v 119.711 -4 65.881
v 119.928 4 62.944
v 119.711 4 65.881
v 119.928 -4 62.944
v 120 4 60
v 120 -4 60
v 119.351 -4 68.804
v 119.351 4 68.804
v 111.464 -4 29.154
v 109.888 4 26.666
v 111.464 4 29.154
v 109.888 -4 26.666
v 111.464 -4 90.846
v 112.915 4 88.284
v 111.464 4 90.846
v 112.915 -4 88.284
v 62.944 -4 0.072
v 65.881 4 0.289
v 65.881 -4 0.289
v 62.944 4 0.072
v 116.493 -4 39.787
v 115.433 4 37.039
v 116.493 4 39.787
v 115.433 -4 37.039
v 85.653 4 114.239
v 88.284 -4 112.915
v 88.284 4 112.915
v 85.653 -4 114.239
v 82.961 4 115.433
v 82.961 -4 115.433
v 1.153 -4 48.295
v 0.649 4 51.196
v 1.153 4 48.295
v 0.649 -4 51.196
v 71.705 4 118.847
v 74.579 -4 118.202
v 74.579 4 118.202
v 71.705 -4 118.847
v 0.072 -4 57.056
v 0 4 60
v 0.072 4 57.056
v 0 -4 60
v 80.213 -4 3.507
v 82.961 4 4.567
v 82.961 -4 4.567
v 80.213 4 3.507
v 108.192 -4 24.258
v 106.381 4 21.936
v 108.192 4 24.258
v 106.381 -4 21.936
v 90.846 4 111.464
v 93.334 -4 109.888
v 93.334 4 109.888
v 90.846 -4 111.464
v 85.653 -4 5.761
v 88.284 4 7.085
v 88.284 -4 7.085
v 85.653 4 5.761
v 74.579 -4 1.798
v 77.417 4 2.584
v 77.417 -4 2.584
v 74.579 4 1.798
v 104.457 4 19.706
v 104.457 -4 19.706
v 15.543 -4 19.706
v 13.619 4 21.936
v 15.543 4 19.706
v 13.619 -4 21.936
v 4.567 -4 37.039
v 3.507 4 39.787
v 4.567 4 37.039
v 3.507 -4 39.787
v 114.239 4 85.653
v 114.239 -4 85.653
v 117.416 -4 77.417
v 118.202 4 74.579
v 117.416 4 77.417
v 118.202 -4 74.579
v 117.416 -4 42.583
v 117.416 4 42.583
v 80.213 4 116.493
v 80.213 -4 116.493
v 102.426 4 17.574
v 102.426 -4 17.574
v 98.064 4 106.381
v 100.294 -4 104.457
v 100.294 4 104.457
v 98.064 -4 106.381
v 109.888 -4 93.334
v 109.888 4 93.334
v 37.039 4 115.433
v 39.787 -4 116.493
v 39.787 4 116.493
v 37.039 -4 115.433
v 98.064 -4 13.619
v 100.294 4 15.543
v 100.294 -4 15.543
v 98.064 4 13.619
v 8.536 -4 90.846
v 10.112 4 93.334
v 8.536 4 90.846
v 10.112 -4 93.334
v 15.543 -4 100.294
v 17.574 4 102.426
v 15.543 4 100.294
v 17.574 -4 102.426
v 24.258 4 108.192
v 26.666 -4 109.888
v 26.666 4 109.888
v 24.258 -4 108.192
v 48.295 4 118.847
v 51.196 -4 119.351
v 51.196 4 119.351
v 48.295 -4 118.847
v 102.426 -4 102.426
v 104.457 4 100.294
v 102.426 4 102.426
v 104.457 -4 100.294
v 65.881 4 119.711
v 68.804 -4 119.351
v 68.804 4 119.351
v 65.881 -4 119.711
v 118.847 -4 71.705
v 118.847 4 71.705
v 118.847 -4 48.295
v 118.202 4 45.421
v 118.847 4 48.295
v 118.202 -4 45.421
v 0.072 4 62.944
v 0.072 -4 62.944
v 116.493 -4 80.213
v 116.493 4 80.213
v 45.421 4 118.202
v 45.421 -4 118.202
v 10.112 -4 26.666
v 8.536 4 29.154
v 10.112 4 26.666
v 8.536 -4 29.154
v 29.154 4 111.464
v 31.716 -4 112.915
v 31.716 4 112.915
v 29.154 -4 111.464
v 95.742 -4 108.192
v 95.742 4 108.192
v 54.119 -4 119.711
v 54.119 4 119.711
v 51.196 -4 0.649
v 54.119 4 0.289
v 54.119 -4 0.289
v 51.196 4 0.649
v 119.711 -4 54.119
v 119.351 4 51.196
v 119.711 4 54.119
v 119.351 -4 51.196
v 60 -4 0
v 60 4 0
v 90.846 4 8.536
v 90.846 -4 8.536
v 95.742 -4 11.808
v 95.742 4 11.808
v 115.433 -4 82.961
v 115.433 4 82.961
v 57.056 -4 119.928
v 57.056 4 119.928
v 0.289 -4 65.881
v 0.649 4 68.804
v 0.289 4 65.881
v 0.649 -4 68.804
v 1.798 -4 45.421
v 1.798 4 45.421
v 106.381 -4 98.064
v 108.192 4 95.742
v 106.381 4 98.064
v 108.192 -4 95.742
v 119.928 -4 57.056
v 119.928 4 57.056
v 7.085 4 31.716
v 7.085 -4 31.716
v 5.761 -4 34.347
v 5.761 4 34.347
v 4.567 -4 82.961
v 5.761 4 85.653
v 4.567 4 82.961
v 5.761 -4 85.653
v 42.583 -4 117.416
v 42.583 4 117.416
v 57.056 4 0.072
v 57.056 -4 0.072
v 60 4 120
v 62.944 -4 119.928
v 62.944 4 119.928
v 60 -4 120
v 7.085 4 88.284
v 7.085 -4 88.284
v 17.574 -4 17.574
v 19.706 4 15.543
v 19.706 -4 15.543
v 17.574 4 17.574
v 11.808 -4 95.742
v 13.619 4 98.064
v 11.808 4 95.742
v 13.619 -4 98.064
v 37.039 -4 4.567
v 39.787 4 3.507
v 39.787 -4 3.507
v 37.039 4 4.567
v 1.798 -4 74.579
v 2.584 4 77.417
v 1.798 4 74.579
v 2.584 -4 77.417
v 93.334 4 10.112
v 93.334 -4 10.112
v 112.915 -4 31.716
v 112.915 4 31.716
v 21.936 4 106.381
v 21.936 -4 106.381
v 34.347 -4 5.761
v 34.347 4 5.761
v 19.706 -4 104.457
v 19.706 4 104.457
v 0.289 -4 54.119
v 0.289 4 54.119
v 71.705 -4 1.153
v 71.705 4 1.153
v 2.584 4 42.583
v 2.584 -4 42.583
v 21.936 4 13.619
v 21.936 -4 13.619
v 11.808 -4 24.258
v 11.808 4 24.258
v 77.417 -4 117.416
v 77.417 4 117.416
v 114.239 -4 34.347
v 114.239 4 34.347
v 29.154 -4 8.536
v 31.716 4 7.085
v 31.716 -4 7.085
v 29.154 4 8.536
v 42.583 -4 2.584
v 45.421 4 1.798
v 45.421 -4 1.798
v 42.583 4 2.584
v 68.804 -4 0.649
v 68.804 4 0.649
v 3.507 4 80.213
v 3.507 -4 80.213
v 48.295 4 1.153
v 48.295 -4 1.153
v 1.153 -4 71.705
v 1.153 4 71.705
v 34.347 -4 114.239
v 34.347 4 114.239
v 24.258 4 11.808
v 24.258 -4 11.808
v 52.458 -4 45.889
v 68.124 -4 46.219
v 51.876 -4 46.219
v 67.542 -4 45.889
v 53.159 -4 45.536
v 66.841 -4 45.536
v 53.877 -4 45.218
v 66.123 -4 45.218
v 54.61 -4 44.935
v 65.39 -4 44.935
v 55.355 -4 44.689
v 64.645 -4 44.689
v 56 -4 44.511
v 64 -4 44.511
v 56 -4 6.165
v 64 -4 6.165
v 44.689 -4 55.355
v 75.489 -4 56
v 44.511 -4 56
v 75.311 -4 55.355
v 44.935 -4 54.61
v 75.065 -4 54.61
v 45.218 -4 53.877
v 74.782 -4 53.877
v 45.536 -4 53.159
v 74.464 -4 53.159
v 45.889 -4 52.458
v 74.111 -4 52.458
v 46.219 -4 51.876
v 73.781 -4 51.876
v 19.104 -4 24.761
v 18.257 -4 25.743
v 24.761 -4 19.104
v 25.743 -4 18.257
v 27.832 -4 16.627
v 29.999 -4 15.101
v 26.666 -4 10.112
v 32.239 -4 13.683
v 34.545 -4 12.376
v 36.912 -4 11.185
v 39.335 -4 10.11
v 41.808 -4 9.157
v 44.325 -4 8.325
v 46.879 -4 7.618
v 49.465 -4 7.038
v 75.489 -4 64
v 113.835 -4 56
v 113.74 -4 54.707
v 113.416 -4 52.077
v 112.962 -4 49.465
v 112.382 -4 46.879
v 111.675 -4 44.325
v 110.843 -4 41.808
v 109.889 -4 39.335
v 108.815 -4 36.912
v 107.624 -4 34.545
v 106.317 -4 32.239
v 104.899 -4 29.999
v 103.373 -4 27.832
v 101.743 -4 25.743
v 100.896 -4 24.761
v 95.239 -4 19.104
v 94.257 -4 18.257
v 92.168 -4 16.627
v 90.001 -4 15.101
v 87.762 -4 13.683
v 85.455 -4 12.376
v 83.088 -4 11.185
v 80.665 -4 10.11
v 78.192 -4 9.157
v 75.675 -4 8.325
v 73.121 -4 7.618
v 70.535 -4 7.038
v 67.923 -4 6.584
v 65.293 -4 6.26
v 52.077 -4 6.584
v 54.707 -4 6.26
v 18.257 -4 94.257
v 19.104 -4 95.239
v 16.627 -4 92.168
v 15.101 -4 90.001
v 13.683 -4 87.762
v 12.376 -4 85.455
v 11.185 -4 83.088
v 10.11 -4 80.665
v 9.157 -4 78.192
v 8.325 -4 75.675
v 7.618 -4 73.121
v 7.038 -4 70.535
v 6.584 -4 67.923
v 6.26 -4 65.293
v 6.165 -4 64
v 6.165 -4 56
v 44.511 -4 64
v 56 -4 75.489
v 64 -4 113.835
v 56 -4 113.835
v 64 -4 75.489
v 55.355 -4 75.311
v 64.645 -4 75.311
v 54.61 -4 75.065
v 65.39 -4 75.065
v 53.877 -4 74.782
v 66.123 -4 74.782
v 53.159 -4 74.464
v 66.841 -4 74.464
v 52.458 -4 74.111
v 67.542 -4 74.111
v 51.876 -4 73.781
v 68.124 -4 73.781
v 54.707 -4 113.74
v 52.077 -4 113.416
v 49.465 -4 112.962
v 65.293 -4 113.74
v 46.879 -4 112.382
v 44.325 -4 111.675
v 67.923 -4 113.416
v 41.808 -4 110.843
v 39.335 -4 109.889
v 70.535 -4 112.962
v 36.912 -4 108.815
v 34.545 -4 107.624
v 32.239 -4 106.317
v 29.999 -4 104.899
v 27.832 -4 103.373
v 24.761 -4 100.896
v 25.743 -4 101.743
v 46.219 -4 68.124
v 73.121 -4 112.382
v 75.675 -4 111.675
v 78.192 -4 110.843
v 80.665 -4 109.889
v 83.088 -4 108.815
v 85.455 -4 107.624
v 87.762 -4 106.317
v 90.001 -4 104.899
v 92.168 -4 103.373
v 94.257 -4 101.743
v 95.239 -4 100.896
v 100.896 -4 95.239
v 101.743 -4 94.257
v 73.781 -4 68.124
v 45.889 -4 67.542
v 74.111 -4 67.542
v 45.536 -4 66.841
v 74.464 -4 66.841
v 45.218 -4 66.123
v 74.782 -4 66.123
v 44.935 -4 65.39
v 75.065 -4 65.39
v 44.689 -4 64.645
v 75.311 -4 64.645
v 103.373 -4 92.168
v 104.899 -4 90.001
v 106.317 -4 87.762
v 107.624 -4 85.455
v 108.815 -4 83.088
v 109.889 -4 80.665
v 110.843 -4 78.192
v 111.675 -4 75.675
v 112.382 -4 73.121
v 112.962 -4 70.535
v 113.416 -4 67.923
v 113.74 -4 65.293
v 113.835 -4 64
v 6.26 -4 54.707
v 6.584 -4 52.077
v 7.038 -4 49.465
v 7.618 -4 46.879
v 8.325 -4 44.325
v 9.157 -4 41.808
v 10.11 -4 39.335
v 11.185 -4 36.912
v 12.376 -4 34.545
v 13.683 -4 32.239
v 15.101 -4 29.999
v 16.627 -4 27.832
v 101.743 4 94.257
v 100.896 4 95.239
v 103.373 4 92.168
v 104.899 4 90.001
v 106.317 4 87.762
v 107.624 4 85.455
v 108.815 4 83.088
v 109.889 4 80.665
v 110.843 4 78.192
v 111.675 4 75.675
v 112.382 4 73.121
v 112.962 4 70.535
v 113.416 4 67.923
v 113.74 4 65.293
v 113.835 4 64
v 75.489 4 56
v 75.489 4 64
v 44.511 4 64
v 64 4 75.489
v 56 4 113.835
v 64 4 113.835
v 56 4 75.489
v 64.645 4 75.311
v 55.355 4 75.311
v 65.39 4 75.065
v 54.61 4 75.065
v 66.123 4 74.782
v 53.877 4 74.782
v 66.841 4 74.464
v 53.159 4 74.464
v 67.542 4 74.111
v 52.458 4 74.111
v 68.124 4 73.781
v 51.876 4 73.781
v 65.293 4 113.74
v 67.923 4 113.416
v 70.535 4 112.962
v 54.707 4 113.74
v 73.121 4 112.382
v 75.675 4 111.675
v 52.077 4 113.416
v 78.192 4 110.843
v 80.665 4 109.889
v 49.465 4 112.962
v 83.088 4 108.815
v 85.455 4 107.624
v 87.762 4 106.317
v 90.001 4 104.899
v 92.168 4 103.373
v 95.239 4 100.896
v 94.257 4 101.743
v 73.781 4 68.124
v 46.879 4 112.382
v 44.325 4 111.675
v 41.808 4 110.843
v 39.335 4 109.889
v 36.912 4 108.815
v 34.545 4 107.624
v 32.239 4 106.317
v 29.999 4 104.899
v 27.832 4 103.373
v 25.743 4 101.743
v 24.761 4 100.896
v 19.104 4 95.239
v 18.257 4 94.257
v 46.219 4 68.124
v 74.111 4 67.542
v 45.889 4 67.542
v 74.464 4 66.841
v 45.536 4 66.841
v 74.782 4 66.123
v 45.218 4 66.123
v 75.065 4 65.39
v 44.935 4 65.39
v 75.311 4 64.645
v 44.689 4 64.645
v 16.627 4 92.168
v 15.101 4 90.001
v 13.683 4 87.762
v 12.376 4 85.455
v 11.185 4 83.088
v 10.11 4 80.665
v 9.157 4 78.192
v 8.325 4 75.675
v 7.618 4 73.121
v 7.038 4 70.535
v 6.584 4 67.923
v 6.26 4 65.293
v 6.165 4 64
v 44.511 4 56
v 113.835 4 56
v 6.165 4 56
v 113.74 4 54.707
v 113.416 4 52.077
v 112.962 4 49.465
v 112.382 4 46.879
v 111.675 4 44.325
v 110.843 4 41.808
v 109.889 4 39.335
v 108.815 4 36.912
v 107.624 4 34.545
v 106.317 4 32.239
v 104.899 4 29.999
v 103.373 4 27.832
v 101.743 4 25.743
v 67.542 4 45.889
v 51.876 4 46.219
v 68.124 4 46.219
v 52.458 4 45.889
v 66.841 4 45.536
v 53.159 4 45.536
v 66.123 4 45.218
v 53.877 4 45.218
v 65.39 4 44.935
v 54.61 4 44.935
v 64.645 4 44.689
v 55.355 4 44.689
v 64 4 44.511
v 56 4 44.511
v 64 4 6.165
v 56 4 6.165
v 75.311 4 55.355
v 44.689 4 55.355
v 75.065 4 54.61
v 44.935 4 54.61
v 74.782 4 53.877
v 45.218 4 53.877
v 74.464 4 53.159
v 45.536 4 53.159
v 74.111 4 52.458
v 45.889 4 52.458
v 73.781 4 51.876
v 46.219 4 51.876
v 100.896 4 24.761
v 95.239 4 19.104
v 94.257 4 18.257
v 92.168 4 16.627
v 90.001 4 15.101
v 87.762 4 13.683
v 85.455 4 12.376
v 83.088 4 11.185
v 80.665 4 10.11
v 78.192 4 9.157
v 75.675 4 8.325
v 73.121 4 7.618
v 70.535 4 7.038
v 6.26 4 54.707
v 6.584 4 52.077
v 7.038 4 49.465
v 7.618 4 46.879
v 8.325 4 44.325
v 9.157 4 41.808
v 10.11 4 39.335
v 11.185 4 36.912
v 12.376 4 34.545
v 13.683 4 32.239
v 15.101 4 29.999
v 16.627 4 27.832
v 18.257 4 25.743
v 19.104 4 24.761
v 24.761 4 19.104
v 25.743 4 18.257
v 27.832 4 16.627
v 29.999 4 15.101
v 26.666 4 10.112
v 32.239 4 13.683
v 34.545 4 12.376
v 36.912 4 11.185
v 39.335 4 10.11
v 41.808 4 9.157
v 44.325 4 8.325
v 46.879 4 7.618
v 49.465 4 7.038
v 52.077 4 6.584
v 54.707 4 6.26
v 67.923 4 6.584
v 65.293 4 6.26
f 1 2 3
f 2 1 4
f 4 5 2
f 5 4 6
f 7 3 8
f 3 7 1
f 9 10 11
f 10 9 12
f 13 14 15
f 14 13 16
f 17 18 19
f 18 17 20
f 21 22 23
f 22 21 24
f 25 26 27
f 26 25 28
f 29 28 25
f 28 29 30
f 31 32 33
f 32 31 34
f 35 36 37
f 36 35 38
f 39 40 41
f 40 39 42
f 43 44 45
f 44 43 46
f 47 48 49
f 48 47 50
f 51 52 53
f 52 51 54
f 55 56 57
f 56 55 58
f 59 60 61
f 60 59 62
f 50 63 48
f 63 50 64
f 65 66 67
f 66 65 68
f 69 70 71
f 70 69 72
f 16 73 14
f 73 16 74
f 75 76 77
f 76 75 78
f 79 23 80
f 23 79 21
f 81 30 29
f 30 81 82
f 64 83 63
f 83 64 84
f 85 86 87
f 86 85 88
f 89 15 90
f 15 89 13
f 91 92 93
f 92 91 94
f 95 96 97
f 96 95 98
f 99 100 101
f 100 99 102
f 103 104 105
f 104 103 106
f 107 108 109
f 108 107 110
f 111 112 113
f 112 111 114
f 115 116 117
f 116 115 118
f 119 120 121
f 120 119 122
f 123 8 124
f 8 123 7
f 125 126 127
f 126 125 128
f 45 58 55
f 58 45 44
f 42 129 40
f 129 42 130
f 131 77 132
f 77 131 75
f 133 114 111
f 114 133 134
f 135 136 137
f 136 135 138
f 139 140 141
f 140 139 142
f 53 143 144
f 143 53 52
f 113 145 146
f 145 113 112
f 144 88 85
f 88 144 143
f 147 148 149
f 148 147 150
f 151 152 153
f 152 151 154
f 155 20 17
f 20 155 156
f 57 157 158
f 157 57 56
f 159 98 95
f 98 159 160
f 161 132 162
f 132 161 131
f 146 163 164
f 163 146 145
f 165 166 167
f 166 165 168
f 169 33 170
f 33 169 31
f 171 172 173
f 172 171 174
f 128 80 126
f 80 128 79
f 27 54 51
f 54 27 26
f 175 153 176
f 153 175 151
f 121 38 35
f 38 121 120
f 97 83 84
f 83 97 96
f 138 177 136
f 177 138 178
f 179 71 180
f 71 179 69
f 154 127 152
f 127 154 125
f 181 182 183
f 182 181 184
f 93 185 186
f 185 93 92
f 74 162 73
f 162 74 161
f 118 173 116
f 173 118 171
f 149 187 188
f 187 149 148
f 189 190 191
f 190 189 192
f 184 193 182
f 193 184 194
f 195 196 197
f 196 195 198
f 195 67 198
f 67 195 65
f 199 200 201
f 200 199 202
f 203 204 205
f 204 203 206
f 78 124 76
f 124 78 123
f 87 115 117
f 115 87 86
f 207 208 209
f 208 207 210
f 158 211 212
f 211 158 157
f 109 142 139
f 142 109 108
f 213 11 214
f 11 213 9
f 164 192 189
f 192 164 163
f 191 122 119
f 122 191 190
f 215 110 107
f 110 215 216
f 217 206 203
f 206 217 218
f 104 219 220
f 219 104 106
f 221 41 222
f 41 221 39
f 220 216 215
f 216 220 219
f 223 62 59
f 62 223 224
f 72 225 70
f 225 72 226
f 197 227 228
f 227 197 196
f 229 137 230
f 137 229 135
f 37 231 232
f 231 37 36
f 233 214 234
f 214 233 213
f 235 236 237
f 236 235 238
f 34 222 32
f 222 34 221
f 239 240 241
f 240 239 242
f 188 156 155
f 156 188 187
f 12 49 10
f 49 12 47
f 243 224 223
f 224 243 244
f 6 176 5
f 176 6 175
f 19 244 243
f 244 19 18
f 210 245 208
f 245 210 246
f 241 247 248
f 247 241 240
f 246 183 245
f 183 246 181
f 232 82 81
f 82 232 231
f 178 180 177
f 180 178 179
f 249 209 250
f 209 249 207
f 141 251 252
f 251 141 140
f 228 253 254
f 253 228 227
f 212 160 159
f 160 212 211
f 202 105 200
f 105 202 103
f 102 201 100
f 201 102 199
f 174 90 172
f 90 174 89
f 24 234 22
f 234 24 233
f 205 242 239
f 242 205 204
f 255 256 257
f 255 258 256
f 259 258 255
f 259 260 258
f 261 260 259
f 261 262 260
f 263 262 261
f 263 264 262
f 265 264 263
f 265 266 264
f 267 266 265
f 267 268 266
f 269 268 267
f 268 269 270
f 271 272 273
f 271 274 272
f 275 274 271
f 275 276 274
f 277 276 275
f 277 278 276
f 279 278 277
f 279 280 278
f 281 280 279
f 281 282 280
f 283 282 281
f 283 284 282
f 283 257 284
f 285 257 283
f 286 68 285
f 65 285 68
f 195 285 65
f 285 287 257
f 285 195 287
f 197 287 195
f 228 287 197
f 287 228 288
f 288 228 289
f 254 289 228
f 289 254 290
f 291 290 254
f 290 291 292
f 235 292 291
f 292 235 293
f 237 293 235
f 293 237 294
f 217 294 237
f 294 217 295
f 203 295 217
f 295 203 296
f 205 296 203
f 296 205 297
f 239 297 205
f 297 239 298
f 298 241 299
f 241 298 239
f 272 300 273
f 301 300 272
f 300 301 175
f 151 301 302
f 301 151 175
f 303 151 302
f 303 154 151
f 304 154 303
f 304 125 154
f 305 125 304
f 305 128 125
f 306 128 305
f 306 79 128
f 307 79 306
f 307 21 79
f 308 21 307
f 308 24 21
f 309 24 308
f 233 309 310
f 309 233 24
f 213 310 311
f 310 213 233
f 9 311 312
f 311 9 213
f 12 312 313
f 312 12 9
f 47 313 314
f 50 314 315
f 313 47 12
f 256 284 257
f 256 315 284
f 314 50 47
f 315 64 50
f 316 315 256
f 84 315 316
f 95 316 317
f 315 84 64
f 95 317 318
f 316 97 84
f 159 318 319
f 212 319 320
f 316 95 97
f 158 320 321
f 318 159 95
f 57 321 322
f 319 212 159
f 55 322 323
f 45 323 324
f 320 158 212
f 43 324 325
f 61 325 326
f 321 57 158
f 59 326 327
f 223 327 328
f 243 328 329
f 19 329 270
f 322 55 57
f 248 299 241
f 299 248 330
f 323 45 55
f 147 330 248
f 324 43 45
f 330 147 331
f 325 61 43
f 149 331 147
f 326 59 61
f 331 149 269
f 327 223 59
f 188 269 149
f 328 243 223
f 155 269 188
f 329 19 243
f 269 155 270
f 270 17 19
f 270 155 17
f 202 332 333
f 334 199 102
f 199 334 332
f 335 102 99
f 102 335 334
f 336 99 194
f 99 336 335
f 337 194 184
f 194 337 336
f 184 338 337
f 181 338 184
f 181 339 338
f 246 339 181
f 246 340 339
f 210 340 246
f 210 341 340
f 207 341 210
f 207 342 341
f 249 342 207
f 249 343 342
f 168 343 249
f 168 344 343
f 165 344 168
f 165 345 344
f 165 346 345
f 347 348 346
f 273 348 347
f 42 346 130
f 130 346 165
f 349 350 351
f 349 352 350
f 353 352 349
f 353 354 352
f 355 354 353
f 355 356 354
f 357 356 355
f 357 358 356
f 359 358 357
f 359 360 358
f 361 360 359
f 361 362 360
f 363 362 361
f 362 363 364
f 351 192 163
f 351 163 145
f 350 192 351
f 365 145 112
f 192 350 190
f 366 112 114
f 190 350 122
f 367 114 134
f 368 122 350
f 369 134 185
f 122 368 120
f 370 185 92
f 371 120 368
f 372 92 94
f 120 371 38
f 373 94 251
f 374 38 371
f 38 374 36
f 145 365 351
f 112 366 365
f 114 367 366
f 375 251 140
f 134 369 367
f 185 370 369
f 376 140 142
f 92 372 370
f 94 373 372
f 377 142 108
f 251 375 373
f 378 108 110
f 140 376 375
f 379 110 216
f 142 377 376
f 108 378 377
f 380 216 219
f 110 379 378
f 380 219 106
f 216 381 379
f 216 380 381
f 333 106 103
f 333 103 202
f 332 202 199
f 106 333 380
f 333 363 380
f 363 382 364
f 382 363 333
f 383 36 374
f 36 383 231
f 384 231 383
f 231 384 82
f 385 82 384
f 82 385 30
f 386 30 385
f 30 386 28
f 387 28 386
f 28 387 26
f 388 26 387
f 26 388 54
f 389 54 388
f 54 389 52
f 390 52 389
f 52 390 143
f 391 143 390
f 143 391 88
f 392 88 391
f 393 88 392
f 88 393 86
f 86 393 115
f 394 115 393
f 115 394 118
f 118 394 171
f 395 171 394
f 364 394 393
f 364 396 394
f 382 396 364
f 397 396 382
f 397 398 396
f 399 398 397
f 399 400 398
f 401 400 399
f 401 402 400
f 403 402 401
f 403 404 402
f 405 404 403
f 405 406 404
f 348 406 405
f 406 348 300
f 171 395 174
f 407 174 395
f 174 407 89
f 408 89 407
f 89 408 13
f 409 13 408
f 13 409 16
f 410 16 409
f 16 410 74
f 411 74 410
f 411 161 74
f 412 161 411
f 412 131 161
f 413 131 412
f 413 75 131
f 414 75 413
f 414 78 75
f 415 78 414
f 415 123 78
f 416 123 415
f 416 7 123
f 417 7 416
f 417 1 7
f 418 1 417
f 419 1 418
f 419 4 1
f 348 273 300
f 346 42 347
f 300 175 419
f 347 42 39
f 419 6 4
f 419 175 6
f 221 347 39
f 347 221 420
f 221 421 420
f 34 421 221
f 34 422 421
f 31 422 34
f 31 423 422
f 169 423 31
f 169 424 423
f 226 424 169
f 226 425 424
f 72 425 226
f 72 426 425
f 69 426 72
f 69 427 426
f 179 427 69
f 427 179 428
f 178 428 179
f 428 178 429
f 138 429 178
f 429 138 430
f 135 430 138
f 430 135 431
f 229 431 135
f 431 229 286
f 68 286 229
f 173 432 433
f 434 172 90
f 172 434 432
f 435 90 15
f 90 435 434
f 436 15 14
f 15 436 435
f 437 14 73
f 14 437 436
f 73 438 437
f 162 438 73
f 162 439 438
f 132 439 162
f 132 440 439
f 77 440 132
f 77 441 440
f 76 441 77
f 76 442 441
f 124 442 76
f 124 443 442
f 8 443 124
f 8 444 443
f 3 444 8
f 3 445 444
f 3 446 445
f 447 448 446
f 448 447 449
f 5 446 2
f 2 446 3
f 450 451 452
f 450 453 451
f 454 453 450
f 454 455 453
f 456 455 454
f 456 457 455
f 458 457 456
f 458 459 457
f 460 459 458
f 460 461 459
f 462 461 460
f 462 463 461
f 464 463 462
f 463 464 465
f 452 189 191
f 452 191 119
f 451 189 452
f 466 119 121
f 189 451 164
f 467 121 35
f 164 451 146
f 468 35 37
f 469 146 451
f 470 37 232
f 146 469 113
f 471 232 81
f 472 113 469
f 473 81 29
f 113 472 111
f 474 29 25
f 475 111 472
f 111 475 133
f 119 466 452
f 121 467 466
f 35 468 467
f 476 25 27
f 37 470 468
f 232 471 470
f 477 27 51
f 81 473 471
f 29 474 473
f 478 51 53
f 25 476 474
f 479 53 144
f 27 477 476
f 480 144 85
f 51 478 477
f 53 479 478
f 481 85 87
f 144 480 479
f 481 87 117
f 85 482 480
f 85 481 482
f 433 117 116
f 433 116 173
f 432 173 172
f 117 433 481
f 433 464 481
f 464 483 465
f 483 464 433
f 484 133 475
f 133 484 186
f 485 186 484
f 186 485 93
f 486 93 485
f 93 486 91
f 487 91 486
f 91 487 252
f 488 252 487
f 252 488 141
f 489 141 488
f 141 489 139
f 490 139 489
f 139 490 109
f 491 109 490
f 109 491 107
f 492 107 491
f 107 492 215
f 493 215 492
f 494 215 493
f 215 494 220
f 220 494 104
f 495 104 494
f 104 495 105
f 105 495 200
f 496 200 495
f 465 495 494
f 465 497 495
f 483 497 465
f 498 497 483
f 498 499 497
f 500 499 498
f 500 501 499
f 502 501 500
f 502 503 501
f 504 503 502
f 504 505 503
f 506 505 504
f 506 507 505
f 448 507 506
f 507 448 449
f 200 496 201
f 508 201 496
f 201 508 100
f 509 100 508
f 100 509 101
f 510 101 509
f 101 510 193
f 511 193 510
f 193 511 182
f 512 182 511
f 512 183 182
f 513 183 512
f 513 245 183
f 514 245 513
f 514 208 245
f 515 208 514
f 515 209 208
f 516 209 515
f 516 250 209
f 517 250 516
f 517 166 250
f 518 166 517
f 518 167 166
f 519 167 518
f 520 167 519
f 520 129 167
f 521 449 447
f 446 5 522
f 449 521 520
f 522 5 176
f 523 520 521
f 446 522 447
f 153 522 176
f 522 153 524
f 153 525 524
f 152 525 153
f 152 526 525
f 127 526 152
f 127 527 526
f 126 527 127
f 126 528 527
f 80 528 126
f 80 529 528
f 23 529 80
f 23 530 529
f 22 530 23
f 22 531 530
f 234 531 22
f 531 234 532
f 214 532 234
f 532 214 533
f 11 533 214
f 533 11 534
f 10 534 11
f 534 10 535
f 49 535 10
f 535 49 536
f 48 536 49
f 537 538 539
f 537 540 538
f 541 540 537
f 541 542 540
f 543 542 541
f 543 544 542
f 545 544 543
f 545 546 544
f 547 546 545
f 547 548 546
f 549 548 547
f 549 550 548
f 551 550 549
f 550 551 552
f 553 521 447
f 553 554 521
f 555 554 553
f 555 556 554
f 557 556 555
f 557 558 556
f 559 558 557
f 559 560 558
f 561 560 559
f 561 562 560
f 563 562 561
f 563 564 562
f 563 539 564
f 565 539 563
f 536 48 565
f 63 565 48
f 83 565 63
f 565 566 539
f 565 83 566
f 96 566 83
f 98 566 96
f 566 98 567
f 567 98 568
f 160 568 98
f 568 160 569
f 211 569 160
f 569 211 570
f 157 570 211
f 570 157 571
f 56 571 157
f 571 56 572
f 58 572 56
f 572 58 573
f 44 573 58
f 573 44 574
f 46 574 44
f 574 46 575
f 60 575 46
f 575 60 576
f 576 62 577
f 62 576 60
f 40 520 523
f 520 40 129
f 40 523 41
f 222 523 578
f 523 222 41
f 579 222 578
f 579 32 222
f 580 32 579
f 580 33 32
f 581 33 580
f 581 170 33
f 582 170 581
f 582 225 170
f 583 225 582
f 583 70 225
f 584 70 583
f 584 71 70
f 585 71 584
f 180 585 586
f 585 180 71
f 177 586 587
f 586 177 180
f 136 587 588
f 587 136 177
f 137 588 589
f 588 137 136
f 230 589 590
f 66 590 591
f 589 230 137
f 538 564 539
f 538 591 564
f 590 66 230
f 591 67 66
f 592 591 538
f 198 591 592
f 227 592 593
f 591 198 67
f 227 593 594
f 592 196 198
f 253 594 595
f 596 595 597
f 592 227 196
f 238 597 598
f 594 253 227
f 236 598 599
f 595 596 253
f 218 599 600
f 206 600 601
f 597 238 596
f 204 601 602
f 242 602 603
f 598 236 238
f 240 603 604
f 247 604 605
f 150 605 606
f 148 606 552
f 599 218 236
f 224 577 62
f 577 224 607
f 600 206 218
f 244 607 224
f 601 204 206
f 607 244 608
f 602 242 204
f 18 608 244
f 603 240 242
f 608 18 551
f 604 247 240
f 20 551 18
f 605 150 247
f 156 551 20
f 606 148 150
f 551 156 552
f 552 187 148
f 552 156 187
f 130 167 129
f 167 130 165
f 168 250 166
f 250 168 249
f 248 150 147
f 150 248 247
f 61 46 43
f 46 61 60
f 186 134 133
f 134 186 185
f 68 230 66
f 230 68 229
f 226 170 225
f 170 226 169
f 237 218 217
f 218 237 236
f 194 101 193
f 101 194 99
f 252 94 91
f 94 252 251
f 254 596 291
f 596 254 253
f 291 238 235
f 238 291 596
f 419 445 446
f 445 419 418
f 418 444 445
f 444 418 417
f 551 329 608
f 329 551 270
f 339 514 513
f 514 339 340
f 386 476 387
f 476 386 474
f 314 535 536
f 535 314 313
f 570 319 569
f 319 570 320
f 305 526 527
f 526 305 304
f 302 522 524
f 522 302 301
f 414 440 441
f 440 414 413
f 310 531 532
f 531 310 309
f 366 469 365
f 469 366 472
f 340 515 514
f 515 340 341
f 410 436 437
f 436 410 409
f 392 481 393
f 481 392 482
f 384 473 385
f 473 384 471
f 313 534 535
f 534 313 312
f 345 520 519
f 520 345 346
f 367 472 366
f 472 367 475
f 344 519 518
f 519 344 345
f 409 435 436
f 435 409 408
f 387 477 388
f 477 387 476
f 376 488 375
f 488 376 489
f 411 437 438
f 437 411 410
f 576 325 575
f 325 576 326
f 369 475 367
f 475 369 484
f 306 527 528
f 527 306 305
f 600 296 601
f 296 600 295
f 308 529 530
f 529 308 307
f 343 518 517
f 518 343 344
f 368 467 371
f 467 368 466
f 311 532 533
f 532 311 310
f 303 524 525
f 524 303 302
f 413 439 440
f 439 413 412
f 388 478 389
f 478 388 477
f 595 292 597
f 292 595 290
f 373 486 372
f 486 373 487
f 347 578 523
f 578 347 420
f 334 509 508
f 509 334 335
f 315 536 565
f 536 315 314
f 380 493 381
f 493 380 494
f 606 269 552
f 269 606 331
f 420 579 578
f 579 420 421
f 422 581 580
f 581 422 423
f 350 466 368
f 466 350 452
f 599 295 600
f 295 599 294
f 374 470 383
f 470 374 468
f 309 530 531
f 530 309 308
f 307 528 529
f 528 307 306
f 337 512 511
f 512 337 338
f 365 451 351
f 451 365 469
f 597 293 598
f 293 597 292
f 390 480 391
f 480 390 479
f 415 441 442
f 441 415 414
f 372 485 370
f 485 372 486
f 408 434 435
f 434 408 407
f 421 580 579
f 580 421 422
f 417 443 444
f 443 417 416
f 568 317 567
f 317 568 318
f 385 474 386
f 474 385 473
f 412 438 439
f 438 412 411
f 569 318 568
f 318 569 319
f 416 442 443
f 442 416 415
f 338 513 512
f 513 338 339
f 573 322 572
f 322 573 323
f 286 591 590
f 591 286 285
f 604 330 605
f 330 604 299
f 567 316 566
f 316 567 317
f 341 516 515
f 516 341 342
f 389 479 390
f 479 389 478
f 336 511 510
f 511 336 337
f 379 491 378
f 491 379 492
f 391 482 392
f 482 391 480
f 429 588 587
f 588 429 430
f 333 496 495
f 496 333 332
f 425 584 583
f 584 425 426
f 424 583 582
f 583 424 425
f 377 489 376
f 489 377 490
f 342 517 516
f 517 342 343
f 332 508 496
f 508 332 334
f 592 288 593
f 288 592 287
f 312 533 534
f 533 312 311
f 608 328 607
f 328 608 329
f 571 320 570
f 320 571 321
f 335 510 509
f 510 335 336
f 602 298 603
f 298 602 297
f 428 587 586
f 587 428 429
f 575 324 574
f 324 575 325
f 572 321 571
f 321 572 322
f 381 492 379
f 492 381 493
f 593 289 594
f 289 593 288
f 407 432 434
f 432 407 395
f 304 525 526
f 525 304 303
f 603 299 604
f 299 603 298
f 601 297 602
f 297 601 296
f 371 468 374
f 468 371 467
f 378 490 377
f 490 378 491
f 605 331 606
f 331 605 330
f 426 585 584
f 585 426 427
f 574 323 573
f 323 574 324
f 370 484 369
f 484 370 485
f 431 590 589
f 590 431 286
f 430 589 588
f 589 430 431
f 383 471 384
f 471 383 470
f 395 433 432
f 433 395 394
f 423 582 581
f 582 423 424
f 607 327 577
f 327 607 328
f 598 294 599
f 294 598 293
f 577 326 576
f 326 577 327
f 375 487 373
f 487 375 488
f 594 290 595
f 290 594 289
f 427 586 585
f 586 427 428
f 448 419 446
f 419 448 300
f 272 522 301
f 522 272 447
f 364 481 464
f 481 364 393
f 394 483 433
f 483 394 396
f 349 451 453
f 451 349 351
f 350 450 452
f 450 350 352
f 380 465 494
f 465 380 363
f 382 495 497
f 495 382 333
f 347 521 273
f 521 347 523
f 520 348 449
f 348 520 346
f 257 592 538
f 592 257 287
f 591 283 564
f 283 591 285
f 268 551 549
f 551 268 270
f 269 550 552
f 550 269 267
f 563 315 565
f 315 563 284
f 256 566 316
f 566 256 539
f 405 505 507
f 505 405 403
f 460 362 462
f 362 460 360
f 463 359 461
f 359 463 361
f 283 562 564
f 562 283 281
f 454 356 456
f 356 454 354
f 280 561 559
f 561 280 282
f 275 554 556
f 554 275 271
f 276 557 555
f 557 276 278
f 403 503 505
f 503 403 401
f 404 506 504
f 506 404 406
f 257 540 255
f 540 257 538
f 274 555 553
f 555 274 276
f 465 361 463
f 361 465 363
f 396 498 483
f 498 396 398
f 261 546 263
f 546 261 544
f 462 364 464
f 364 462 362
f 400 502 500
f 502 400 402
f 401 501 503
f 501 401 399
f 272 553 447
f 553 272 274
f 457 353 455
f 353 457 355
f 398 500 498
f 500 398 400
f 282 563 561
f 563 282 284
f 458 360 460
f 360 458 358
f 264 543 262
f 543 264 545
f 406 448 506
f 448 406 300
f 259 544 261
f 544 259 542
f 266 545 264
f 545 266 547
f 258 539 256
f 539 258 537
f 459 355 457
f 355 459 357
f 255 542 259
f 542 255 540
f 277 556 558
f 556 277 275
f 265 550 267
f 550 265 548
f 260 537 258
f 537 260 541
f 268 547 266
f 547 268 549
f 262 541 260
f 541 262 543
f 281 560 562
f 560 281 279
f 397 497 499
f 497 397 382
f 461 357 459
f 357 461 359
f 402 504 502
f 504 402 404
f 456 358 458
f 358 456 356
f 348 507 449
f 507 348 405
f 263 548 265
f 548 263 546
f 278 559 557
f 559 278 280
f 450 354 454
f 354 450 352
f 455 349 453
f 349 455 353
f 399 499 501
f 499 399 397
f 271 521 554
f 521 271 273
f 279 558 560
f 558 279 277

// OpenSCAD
$fn=128;
/* doodle-meta {"version":1,"parameters":{"outer_diameter":{"label":"Outer diameter","description":"Outer rim diameter","unit":"mm"},"hub_diameter":{"label":"Hub","description":"Hub diameter","unit":"mm"},"spoke_width":{"label":"Spoke width","description":"Spoke bar thickness","unit":"mm"}}} */
// Wheel lies in XZ. FIXED: spokes extend to overlap the rim inner wall.
outer_diameter = 120; // mm
rim_inner_diameter = 108; // mm
hub_diameter = 32; // mm
thickness = 8; // mm
spoke_count = 8; // count
spoke_width = 8; // mm
spoke_reach = 42; // mm from hub overlap start; extends into the rim
translate([outer_diameter/2,thickness/2,outer_diameter/2]) rotate([90,0,0]) union(){
  difference(){cylinder(d=outer_diameter,h=thickness);translate([0,0,-1])cylinder(d=rim_inner_diameter,h=thickness+2);}
  cylinder(d=hub_diameter,h=thickness);
  for(a=[0:360/spoke_count:360-360/spoke_count])rotate([0,0,a])translate([hub_diameter/2-1,-thickness/2,0])cube([spoke_reach,thickness,thickness]);
}
